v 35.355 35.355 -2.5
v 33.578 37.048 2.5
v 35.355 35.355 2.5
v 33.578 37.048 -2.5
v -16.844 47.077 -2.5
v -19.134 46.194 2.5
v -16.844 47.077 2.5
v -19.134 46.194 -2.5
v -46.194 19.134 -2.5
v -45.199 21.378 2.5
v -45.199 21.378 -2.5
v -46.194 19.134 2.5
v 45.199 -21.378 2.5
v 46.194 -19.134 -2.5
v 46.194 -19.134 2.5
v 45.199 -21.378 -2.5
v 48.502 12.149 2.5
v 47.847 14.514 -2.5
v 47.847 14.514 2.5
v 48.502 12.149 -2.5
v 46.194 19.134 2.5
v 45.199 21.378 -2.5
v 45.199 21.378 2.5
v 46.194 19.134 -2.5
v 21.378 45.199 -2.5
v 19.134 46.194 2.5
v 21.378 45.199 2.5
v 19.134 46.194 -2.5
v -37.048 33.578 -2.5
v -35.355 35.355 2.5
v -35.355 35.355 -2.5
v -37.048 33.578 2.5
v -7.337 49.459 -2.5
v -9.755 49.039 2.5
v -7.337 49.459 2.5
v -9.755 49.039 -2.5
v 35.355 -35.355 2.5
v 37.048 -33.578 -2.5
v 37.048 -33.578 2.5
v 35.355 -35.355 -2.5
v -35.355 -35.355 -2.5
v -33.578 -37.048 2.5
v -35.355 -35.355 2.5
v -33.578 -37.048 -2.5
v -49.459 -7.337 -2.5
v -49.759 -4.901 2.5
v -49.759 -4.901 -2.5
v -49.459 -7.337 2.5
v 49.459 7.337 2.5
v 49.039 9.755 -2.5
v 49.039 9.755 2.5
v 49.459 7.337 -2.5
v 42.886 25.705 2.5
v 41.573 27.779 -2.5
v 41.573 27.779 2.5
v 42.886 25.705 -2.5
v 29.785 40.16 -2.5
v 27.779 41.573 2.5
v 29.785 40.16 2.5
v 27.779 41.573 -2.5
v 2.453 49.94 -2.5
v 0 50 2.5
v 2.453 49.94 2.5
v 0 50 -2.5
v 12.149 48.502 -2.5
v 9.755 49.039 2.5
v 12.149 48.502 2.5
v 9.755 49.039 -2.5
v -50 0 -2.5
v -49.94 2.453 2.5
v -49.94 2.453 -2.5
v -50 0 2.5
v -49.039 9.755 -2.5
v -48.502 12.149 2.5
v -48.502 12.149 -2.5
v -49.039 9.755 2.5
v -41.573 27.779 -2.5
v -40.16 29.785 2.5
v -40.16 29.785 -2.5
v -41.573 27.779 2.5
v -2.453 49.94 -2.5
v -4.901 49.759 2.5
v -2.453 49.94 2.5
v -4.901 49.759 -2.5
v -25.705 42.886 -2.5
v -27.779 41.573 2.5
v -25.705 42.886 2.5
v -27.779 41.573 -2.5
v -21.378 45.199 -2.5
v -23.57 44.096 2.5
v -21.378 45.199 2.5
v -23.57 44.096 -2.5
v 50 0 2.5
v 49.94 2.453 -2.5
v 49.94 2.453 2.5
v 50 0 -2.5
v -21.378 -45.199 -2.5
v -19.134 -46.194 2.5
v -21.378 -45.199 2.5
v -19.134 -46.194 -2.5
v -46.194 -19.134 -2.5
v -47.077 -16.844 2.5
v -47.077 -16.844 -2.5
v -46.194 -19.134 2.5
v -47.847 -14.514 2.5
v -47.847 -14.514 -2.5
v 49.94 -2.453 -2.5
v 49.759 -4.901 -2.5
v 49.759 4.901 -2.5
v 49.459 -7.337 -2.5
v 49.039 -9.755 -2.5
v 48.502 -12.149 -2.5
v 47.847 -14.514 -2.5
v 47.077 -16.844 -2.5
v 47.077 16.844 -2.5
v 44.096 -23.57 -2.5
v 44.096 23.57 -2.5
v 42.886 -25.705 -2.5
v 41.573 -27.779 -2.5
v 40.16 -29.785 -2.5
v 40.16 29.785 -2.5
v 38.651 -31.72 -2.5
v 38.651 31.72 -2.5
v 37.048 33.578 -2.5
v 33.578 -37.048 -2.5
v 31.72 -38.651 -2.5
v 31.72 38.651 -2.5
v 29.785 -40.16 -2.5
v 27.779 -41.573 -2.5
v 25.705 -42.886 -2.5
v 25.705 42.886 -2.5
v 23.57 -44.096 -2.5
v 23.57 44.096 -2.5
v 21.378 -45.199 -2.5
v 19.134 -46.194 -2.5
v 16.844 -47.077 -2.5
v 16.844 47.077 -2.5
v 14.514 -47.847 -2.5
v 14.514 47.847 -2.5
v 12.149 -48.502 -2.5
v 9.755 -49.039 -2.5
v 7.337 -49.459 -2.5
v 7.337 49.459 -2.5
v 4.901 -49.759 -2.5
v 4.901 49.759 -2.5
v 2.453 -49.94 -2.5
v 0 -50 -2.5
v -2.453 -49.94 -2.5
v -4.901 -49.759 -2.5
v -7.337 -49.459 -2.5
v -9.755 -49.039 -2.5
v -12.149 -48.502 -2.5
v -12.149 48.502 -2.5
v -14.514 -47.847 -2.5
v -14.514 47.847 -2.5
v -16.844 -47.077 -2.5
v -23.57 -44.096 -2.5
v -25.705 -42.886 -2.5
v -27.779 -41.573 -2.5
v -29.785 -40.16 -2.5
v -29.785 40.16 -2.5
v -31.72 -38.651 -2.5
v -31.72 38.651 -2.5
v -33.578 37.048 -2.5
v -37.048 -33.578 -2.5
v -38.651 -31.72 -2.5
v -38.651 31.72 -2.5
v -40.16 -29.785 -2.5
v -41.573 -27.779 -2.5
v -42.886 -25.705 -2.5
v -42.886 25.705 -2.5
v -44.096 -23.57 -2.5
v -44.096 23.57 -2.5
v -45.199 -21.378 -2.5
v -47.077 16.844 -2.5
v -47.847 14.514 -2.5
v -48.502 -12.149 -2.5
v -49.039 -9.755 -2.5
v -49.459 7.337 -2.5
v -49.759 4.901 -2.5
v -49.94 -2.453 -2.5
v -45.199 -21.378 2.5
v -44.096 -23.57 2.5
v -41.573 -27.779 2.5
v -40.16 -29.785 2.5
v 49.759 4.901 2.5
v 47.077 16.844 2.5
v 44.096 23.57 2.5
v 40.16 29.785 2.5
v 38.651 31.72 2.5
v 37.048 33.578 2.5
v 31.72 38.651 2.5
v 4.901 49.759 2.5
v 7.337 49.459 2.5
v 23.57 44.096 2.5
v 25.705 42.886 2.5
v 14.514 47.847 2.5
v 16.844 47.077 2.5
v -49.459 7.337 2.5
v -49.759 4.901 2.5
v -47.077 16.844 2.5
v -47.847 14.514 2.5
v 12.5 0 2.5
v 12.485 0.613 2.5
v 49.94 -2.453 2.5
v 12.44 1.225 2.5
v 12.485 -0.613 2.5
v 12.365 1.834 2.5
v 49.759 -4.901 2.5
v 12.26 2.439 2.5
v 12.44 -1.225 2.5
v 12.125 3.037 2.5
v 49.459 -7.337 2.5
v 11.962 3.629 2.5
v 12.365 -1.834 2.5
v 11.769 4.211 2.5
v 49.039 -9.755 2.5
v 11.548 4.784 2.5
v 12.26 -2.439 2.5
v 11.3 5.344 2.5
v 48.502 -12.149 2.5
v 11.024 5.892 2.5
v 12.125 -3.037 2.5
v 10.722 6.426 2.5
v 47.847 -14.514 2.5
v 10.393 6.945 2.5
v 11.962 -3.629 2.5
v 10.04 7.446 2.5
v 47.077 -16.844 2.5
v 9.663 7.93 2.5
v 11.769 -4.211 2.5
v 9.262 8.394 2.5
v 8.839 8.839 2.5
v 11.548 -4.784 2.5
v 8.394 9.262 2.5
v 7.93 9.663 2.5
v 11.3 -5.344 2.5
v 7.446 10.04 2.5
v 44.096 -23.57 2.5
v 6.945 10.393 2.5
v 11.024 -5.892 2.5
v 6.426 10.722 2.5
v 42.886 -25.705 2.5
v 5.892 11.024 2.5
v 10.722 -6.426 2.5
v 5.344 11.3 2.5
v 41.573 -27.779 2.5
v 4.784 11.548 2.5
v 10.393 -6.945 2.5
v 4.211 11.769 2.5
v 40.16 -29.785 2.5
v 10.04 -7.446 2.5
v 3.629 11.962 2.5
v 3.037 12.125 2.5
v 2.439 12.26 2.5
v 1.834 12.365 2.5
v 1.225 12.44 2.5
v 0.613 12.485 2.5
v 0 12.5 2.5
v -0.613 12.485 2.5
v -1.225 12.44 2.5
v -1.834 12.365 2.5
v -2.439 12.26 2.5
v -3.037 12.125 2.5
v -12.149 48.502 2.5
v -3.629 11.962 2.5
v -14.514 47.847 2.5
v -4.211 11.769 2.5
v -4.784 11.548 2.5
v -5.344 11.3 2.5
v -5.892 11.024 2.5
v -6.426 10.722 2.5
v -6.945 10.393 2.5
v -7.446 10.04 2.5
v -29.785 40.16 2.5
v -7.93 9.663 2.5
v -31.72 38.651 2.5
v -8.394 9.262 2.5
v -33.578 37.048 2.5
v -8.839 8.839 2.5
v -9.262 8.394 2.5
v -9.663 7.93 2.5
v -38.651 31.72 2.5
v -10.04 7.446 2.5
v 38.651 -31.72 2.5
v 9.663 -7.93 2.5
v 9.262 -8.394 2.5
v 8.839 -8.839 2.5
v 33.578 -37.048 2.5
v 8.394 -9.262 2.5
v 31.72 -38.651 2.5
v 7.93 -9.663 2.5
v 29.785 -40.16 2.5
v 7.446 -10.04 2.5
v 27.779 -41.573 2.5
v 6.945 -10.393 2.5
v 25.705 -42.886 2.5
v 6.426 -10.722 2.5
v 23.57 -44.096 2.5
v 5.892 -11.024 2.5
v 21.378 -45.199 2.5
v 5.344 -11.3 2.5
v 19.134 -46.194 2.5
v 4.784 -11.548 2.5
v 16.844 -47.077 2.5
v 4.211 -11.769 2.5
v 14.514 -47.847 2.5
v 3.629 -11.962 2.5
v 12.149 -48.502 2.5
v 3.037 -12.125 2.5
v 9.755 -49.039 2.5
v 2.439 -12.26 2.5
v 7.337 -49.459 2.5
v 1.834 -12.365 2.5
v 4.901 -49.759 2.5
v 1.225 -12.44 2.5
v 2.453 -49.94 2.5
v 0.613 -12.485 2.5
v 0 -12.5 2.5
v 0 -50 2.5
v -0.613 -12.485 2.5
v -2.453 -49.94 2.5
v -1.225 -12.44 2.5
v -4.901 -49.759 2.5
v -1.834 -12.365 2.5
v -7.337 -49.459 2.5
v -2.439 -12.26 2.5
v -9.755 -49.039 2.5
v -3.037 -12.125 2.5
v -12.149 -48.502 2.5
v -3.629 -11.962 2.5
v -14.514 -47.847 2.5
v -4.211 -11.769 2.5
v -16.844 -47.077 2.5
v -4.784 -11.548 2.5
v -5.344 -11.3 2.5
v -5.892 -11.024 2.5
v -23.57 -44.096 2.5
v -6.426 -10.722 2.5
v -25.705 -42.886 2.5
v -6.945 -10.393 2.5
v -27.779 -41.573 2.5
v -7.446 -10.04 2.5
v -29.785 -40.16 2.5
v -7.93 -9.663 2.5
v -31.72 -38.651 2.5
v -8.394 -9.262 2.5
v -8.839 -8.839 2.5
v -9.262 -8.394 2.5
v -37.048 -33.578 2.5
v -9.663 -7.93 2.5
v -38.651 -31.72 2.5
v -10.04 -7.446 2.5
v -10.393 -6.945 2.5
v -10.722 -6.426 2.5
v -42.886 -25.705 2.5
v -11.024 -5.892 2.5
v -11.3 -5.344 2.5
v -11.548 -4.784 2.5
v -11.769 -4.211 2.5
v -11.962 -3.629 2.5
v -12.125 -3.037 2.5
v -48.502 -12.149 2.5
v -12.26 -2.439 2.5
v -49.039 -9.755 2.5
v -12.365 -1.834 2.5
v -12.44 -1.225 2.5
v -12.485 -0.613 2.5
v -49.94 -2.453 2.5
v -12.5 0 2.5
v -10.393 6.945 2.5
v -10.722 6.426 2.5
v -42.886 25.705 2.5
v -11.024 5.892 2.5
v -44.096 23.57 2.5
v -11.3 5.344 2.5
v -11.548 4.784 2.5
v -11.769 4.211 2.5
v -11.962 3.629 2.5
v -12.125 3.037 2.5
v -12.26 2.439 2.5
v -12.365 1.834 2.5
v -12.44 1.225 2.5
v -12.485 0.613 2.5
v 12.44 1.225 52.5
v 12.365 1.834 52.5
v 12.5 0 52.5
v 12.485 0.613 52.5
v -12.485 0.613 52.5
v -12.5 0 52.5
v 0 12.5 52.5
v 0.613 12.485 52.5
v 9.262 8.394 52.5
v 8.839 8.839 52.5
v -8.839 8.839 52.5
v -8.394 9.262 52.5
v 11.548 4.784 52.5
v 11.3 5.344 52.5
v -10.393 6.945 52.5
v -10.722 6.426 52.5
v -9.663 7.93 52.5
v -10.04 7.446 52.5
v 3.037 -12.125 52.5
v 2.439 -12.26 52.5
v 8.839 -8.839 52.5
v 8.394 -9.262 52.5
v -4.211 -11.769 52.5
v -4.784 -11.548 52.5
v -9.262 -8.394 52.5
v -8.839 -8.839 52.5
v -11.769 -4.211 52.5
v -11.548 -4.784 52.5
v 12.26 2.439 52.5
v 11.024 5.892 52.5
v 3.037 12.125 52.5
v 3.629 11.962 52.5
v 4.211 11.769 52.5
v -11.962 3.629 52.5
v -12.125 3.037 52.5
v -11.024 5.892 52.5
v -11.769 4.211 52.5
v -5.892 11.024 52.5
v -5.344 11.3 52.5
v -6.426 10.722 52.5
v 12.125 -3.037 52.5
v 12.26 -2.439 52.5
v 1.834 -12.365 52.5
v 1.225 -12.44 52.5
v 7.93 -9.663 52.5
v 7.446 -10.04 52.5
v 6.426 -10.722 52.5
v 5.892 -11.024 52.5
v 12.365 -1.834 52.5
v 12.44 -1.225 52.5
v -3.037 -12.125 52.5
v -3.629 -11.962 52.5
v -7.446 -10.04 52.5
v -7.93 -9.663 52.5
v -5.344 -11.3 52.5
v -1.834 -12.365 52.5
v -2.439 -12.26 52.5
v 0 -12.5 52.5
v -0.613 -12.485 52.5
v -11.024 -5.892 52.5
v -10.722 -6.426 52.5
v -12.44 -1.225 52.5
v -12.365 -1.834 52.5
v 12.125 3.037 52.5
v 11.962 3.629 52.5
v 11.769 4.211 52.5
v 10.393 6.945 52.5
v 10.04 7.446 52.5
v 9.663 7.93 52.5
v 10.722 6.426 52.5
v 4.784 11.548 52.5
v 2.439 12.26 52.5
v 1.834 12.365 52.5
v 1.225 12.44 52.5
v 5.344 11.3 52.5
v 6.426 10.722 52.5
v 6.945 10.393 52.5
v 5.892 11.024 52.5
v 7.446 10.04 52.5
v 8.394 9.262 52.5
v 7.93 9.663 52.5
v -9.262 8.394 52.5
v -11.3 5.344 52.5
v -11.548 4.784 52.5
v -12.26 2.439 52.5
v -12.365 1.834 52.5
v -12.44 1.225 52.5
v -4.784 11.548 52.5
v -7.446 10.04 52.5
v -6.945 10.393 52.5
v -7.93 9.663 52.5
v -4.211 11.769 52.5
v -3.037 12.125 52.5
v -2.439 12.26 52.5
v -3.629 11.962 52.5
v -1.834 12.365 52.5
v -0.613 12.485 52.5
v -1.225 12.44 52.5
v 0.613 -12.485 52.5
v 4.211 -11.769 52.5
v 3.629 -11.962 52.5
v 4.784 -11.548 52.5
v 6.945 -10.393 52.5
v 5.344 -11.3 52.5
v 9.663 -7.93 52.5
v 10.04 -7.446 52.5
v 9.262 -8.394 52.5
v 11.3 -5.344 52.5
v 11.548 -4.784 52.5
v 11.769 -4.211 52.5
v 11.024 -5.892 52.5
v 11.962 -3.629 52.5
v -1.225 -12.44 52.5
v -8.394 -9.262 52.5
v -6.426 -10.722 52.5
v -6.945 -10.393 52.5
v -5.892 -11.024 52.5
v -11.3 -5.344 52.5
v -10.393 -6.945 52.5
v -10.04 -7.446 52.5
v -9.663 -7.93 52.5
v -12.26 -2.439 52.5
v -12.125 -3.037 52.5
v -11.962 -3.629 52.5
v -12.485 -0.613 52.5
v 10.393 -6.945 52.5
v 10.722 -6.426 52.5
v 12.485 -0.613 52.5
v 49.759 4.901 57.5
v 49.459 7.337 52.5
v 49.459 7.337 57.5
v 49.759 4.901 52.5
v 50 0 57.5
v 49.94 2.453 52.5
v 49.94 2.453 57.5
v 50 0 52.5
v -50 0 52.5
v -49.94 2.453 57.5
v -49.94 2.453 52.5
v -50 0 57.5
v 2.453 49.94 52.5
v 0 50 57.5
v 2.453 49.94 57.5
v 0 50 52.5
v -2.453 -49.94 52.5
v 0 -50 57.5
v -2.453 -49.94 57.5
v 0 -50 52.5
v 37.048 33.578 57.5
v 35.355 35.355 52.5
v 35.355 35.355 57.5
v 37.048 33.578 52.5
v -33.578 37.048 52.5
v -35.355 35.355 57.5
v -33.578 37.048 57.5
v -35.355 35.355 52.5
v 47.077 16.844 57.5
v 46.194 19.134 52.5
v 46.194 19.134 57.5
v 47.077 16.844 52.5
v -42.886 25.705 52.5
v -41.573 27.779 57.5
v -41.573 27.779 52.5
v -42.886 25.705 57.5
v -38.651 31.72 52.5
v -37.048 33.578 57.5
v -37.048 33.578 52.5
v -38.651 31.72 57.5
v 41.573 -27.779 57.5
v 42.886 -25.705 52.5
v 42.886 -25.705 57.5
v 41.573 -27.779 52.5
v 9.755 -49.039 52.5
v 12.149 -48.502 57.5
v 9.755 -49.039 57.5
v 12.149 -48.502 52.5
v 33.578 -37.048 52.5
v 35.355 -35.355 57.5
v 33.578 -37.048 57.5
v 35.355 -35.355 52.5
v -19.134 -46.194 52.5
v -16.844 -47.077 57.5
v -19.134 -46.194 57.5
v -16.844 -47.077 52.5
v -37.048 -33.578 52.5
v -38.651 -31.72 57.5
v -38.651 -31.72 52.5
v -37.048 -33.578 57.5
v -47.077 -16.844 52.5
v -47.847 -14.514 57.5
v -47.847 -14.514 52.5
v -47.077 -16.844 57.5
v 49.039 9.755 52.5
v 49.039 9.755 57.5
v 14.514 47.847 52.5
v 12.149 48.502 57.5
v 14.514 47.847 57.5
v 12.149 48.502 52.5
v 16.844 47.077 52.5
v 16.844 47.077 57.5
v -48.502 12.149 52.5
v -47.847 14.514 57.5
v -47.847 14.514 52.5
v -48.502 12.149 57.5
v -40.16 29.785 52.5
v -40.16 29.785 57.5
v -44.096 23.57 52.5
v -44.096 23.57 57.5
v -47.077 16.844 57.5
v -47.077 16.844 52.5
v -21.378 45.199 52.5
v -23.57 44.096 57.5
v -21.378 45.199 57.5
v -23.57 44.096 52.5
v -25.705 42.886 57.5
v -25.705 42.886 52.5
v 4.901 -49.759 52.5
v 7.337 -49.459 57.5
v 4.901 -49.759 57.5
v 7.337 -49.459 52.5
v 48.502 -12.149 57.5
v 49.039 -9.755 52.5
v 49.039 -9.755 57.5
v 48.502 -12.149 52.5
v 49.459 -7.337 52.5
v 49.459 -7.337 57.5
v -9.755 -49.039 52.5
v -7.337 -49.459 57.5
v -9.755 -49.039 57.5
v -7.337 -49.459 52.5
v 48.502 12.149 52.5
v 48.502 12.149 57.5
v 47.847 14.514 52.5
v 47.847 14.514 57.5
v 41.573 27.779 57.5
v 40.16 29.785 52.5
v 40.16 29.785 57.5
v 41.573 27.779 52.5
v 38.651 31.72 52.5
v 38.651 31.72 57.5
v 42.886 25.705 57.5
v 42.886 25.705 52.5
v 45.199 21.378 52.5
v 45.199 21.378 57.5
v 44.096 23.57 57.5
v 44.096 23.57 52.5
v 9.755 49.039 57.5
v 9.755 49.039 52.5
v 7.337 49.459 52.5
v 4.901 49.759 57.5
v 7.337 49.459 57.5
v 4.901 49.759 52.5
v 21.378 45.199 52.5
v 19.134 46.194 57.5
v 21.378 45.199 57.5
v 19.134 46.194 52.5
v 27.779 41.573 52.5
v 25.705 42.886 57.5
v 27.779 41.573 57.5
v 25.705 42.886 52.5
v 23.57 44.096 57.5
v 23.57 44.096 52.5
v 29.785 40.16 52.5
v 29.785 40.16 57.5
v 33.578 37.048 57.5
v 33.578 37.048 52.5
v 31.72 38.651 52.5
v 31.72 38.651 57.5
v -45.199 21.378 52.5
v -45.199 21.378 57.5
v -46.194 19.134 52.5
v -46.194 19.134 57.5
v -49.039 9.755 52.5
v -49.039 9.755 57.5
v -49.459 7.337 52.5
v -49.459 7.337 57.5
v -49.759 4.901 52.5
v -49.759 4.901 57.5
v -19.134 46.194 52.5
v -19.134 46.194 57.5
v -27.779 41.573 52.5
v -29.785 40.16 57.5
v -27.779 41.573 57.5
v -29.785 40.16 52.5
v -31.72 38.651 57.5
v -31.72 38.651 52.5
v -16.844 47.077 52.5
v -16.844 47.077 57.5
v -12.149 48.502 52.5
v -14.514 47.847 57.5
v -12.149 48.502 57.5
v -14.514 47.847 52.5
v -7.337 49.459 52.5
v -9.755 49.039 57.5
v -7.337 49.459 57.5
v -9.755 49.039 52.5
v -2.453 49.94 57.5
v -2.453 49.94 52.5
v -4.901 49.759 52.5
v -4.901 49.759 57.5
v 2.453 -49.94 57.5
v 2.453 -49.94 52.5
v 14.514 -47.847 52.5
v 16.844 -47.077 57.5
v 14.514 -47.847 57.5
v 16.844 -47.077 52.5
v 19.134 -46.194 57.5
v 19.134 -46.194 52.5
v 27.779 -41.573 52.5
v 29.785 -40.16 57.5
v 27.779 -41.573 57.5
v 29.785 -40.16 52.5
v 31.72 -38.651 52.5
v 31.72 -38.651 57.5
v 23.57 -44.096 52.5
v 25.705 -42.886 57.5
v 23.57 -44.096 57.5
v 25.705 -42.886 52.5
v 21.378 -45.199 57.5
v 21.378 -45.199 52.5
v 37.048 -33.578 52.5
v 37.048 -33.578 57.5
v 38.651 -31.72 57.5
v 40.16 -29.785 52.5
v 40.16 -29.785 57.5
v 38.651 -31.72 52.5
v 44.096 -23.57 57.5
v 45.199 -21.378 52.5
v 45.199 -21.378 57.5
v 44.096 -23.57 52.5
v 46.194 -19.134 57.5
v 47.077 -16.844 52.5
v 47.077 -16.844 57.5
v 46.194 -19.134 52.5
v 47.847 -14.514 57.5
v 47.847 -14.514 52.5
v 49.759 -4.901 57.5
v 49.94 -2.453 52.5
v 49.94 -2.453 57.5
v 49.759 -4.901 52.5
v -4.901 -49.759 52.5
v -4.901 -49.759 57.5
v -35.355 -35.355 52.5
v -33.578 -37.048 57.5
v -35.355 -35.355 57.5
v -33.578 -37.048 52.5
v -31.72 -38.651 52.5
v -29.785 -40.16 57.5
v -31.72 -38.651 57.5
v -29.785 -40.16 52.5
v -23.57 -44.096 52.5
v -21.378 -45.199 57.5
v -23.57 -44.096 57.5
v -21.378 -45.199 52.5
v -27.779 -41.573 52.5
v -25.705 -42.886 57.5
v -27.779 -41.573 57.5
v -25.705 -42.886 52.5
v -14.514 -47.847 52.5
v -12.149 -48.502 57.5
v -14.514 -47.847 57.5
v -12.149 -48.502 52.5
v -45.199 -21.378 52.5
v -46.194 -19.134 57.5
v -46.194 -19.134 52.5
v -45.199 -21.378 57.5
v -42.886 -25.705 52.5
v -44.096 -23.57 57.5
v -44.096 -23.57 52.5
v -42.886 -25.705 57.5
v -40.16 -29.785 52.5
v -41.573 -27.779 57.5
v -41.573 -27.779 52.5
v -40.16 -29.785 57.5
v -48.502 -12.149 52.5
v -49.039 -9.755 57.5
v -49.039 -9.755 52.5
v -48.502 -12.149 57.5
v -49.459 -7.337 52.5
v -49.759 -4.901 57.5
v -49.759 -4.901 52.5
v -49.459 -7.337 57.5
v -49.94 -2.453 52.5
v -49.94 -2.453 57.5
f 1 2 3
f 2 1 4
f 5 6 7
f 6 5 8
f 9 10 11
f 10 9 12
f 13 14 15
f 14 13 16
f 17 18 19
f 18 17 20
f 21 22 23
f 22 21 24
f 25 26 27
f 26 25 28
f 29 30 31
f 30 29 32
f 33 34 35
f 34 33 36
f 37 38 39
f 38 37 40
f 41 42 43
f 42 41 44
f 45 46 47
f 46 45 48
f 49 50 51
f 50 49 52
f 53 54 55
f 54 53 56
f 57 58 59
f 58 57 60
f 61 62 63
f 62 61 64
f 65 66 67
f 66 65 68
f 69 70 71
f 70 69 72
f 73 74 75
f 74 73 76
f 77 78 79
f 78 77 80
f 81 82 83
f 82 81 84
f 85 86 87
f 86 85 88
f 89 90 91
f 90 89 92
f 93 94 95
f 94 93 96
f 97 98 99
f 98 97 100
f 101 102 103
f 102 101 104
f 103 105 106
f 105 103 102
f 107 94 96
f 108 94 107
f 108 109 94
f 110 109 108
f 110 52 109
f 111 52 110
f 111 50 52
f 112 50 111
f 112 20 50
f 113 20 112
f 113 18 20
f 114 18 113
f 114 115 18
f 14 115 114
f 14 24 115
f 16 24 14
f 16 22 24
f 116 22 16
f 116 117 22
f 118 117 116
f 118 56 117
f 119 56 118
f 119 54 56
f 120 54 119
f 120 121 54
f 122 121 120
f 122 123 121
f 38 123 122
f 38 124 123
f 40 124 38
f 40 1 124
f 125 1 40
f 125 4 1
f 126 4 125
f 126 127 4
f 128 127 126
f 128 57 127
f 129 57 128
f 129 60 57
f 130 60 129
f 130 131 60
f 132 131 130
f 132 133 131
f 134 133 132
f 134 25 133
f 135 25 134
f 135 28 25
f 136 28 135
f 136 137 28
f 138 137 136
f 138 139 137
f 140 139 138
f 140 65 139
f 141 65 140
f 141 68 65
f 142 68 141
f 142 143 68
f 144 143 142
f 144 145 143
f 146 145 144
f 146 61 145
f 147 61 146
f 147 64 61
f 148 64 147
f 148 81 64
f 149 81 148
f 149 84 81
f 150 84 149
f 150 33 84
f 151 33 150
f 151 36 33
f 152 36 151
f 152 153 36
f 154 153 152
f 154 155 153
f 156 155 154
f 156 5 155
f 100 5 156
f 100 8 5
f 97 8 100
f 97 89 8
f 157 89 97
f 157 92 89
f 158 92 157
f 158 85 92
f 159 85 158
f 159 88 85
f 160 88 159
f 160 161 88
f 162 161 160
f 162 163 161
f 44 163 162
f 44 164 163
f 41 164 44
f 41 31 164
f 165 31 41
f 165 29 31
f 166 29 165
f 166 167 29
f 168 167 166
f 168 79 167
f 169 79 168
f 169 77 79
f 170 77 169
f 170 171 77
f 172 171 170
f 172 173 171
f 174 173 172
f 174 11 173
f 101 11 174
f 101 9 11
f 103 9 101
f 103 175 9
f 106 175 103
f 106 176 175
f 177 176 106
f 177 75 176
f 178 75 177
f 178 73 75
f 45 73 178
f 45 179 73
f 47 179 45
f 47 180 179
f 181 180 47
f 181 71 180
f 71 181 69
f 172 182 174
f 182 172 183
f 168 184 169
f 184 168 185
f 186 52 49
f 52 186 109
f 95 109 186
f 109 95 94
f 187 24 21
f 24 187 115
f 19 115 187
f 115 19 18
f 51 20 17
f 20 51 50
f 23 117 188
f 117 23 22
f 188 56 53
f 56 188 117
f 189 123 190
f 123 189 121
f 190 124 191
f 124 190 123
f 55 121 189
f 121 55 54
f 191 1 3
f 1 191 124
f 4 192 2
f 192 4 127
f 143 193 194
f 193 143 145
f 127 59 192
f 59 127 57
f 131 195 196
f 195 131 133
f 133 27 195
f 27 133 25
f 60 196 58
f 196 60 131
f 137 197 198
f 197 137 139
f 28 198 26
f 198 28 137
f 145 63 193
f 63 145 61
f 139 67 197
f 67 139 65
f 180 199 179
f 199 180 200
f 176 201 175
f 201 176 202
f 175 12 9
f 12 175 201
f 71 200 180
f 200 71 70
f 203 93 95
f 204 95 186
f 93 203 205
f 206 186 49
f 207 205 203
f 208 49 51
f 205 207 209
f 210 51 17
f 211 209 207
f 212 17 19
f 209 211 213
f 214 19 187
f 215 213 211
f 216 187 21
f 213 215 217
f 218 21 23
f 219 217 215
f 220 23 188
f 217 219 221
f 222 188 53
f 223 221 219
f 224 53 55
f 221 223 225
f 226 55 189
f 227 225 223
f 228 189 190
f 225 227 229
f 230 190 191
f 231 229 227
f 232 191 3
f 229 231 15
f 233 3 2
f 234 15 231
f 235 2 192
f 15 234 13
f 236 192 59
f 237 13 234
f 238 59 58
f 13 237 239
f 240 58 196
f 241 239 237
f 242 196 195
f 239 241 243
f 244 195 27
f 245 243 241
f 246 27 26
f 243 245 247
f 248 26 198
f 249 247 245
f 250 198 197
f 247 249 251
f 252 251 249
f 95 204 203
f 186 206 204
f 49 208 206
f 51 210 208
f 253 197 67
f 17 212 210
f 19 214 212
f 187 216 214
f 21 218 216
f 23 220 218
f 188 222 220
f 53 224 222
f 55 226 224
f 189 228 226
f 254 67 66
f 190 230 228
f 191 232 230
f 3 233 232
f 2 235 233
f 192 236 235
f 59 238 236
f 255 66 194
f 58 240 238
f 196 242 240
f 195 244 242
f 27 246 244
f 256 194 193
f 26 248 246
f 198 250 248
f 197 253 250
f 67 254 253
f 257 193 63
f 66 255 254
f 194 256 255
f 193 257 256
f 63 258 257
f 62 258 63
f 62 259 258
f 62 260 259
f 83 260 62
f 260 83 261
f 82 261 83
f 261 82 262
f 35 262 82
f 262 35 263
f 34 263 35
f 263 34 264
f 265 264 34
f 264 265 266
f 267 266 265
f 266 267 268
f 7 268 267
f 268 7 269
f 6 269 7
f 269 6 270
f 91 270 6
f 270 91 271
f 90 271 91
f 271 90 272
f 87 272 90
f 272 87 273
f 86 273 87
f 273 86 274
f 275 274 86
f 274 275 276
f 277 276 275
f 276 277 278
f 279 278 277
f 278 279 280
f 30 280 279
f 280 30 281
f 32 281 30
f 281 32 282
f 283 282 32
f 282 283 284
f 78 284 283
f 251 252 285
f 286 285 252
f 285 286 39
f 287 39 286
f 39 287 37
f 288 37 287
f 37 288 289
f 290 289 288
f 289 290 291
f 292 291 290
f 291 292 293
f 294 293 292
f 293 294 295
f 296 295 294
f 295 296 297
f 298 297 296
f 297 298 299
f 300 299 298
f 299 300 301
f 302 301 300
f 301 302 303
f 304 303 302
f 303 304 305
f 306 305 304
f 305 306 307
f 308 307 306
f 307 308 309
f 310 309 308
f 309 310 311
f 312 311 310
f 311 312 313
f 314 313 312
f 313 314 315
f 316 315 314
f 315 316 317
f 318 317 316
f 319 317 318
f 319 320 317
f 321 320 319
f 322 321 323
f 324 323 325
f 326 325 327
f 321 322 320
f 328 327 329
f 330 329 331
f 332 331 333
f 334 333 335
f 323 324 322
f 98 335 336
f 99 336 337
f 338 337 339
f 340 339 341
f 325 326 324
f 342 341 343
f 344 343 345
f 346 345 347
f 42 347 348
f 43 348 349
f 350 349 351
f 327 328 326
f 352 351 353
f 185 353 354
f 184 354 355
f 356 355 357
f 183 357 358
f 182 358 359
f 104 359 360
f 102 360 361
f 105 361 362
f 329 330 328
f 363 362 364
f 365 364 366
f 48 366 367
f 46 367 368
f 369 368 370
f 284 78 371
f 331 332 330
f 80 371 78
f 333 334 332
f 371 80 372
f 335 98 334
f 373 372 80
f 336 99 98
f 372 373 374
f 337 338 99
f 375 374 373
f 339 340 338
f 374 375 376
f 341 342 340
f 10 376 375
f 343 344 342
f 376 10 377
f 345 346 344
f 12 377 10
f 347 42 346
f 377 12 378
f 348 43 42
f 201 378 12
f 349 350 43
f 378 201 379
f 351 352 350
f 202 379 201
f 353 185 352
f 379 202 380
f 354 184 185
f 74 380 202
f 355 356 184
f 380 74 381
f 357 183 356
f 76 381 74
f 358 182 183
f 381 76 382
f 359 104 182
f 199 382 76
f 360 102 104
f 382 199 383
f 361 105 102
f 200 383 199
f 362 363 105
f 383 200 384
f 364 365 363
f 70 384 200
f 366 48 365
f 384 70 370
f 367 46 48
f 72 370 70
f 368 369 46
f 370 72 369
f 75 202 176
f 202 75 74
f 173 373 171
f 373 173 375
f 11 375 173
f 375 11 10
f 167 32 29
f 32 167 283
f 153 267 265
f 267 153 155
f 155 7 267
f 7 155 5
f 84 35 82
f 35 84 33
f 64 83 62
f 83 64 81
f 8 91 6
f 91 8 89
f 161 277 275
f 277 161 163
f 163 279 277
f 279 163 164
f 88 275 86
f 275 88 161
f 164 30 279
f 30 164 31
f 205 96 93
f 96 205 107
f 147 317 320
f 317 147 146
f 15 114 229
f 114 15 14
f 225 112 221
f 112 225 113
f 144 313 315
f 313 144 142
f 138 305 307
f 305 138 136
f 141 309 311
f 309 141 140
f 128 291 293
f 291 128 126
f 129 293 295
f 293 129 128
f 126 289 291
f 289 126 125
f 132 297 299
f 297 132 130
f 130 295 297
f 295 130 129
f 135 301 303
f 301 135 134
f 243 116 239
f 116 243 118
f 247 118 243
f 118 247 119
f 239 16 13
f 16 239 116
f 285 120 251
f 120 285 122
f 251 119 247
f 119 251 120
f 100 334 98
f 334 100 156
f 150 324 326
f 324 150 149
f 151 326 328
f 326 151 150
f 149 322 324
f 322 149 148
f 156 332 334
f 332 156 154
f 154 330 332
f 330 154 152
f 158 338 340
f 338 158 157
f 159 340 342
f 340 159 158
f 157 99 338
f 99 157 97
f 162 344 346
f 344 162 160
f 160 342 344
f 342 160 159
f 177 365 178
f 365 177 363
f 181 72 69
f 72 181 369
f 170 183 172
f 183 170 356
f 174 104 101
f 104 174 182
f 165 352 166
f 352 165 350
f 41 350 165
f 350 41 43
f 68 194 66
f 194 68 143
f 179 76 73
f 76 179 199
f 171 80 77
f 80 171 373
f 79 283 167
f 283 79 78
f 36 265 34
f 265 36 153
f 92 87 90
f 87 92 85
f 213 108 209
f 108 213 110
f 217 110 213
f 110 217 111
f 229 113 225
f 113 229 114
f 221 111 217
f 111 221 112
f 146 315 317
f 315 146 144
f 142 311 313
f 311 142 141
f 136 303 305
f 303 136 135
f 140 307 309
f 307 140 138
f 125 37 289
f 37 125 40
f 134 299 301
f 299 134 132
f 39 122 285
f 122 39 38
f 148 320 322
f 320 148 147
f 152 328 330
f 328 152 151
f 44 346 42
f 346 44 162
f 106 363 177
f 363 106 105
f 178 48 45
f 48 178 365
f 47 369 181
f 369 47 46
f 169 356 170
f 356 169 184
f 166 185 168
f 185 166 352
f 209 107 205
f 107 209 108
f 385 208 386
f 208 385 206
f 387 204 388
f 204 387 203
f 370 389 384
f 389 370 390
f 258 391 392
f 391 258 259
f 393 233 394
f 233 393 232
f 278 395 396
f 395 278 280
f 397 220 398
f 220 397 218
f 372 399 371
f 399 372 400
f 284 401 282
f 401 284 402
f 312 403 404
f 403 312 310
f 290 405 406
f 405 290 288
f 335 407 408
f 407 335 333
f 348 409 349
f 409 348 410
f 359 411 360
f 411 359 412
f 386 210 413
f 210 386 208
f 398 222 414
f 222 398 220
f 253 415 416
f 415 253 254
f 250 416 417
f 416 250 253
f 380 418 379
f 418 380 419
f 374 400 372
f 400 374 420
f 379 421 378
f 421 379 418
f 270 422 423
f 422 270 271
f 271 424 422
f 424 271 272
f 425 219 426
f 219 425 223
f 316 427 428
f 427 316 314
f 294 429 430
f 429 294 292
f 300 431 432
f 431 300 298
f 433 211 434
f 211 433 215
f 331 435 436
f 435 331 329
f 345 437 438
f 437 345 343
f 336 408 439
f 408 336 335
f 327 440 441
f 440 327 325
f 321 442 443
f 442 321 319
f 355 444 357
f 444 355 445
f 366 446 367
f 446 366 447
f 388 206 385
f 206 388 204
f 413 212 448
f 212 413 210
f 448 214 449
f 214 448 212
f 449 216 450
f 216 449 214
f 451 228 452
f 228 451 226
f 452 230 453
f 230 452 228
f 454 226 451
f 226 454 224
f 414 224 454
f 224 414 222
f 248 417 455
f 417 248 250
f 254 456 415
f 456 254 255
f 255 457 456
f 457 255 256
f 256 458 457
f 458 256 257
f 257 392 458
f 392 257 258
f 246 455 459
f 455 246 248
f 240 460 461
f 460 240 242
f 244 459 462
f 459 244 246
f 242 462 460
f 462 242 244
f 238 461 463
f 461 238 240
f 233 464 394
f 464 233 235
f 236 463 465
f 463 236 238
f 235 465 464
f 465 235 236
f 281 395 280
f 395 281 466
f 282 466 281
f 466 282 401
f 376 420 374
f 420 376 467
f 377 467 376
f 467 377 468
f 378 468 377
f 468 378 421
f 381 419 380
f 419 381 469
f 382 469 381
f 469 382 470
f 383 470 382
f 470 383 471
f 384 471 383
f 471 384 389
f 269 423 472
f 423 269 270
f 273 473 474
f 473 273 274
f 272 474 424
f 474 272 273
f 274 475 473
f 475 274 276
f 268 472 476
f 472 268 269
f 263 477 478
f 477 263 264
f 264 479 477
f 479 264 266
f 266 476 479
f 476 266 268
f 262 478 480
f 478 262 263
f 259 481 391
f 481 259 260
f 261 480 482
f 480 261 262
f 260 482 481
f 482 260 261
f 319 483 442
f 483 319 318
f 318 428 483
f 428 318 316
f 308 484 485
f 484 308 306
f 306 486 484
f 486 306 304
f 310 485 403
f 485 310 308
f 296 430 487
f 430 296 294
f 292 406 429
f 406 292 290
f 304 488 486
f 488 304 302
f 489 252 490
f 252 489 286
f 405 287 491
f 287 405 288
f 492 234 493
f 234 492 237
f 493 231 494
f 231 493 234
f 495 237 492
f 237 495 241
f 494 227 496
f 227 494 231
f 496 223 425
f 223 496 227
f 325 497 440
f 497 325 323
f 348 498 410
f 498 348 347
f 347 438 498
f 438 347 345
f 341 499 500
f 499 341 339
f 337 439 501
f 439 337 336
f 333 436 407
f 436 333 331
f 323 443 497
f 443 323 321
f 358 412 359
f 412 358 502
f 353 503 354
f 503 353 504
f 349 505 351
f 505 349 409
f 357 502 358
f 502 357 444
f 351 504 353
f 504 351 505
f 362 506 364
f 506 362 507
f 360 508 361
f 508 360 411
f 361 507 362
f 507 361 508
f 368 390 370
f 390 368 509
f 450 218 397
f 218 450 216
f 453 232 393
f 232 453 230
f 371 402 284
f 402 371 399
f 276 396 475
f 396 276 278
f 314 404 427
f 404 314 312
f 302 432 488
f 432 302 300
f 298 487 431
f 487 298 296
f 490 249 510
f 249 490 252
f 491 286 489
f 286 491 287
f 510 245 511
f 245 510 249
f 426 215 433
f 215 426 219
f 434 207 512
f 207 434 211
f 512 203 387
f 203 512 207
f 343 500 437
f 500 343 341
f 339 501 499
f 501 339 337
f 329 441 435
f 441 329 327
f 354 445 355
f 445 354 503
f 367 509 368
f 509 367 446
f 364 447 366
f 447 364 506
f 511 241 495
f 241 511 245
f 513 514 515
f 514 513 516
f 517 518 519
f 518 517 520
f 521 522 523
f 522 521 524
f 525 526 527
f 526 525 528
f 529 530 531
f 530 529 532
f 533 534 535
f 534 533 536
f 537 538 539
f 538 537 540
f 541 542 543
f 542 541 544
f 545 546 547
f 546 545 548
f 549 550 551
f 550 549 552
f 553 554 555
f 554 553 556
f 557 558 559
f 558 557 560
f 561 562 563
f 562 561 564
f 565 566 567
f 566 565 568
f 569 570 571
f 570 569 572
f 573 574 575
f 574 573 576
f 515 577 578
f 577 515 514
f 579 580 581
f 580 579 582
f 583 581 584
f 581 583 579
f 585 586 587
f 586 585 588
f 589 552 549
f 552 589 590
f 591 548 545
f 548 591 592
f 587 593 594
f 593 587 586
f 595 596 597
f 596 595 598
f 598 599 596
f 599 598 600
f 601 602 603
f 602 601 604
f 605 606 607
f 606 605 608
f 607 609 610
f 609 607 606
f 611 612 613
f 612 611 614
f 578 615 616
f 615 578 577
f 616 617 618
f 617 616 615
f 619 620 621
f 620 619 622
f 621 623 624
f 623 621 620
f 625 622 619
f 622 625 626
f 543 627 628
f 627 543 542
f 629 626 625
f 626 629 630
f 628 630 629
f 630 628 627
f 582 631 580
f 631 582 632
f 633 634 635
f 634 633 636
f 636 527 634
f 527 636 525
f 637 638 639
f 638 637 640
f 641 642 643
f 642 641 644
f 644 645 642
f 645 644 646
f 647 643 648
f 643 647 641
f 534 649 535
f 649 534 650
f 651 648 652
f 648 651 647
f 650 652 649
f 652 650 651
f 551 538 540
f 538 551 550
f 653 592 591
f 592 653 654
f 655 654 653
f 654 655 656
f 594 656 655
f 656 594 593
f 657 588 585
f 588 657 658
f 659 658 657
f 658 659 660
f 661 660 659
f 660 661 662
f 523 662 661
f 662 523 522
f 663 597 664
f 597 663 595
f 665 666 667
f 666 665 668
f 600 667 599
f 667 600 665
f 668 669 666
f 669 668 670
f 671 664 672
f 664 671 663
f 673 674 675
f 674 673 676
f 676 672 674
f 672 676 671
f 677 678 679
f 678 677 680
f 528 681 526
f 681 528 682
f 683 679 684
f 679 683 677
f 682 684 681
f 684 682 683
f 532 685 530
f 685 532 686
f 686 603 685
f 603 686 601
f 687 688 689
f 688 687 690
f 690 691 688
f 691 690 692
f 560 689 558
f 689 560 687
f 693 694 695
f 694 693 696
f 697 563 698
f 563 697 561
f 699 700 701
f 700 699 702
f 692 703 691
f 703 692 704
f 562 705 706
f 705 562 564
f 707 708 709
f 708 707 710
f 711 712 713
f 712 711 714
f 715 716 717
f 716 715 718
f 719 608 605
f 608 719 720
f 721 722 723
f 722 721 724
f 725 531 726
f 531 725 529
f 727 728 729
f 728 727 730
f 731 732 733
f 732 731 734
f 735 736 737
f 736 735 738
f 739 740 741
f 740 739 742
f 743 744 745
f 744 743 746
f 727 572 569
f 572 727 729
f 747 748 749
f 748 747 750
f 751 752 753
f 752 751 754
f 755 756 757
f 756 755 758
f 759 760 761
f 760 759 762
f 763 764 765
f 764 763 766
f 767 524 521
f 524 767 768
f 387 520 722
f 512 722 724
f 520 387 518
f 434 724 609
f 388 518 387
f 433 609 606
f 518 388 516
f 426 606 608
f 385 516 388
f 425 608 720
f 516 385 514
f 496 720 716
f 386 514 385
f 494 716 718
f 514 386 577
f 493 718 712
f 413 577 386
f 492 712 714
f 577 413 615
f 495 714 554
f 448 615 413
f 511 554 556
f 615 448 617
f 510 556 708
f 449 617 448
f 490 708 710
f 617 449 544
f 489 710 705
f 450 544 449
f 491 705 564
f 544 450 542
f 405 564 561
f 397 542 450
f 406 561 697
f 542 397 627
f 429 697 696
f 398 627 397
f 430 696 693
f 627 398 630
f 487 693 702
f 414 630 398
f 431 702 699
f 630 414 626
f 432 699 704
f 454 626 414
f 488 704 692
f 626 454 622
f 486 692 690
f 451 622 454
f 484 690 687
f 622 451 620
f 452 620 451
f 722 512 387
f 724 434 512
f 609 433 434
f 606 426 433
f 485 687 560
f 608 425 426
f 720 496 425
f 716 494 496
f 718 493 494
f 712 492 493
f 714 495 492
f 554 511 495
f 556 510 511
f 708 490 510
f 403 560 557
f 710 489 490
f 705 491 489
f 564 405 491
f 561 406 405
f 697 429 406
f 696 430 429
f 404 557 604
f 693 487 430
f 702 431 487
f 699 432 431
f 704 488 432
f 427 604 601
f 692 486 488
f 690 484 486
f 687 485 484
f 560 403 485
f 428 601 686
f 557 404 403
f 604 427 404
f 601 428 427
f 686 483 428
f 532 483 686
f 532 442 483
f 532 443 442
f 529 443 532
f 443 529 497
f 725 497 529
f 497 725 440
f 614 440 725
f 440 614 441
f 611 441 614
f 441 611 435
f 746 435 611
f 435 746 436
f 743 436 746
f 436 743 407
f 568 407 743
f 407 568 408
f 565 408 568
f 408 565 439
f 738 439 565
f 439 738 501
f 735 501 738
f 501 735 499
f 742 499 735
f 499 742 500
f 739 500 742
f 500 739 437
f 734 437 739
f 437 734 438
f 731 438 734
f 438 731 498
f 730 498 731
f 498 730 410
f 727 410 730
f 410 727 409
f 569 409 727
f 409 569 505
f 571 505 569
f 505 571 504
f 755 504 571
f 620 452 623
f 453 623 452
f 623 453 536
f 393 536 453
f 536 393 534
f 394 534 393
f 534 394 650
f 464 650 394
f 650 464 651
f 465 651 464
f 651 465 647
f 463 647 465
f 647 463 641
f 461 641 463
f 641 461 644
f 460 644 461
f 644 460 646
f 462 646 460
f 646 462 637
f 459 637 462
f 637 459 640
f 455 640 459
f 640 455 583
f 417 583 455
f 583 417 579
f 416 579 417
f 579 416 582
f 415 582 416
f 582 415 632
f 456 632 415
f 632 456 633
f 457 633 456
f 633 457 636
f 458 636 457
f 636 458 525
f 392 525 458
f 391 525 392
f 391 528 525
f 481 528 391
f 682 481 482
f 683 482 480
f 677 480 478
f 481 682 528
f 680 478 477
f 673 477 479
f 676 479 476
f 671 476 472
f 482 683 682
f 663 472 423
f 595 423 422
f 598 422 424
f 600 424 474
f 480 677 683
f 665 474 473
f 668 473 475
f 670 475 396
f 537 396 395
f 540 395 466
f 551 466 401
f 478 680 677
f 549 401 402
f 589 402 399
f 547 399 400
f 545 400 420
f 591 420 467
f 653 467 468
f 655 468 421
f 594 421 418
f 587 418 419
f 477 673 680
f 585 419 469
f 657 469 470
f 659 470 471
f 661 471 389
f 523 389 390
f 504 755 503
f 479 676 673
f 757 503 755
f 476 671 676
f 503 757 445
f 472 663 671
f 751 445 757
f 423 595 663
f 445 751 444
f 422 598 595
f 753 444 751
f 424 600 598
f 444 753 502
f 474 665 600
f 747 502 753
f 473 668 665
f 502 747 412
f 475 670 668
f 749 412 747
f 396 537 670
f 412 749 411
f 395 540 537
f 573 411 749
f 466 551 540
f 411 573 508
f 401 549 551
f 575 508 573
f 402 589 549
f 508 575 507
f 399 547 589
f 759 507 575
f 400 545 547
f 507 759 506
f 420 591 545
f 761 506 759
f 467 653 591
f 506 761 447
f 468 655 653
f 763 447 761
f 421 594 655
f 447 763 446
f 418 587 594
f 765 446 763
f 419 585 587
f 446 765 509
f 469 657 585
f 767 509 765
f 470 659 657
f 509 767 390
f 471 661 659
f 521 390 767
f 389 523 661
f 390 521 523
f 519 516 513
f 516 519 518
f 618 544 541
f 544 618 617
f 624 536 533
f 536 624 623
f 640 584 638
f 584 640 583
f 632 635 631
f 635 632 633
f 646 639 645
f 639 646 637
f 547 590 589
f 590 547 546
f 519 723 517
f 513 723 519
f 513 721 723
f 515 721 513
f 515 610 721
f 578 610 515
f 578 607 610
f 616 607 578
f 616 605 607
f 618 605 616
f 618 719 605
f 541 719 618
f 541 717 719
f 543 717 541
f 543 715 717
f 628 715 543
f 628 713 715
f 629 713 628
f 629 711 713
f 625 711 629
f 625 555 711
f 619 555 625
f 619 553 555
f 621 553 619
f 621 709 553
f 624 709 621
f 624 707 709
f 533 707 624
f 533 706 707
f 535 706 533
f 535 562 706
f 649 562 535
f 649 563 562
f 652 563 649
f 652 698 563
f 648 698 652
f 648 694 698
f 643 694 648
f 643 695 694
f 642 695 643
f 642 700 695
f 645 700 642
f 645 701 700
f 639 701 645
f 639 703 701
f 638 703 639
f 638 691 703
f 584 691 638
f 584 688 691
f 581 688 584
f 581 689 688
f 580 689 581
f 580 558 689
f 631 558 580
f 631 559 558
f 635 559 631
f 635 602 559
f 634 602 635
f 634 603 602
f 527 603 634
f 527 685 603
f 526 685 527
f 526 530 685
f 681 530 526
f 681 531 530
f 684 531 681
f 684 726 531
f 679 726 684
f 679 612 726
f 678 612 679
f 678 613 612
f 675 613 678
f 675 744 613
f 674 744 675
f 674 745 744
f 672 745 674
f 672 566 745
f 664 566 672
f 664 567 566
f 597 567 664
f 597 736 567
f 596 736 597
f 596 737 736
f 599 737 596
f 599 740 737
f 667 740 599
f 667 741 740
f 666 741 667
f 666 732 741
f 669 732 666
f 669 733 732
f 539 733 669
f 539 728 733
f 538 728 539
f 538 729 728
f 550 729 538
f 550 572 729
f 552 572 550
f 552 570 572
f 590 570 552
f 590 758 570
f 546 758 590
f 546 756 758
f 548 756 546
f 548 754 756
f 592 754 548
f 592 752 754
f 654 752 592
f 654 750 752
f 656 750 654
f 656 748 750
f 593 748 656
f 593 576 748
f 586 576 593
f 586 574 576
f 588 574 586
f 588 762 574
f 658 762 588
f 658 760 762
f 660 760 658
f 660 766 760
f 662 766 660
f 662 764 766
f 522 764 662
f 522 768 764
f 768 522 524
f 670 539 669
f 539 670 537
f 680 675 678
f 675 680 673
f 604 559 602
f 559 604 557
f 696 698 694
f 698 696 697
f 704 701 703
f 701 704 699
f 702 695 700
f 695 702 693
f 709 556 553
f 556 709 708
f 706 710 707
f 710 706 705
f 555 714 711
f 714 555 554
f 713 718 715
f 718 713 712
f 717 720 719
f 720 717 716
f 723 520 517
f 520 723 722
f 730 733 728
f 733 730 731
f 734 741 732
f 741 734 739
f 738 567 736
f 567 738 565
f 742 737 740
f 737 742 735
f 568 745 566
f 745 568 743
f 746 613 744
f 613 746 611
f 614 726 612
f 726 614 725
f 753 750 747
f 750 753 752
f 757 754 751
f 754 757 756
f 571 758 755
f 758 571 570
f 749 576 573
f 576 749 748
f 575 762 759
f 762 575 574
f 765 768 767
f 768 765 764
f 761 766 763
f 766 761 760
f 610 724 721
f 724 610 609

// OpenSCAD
$fn = 128;
cylinder(d=100,h=5,center=true);
translate([0,0,27.5]) cylinder(d=25,h=52,center=true);
translate([0,0,55]) cylinder(d=100,h=5,center=true);
